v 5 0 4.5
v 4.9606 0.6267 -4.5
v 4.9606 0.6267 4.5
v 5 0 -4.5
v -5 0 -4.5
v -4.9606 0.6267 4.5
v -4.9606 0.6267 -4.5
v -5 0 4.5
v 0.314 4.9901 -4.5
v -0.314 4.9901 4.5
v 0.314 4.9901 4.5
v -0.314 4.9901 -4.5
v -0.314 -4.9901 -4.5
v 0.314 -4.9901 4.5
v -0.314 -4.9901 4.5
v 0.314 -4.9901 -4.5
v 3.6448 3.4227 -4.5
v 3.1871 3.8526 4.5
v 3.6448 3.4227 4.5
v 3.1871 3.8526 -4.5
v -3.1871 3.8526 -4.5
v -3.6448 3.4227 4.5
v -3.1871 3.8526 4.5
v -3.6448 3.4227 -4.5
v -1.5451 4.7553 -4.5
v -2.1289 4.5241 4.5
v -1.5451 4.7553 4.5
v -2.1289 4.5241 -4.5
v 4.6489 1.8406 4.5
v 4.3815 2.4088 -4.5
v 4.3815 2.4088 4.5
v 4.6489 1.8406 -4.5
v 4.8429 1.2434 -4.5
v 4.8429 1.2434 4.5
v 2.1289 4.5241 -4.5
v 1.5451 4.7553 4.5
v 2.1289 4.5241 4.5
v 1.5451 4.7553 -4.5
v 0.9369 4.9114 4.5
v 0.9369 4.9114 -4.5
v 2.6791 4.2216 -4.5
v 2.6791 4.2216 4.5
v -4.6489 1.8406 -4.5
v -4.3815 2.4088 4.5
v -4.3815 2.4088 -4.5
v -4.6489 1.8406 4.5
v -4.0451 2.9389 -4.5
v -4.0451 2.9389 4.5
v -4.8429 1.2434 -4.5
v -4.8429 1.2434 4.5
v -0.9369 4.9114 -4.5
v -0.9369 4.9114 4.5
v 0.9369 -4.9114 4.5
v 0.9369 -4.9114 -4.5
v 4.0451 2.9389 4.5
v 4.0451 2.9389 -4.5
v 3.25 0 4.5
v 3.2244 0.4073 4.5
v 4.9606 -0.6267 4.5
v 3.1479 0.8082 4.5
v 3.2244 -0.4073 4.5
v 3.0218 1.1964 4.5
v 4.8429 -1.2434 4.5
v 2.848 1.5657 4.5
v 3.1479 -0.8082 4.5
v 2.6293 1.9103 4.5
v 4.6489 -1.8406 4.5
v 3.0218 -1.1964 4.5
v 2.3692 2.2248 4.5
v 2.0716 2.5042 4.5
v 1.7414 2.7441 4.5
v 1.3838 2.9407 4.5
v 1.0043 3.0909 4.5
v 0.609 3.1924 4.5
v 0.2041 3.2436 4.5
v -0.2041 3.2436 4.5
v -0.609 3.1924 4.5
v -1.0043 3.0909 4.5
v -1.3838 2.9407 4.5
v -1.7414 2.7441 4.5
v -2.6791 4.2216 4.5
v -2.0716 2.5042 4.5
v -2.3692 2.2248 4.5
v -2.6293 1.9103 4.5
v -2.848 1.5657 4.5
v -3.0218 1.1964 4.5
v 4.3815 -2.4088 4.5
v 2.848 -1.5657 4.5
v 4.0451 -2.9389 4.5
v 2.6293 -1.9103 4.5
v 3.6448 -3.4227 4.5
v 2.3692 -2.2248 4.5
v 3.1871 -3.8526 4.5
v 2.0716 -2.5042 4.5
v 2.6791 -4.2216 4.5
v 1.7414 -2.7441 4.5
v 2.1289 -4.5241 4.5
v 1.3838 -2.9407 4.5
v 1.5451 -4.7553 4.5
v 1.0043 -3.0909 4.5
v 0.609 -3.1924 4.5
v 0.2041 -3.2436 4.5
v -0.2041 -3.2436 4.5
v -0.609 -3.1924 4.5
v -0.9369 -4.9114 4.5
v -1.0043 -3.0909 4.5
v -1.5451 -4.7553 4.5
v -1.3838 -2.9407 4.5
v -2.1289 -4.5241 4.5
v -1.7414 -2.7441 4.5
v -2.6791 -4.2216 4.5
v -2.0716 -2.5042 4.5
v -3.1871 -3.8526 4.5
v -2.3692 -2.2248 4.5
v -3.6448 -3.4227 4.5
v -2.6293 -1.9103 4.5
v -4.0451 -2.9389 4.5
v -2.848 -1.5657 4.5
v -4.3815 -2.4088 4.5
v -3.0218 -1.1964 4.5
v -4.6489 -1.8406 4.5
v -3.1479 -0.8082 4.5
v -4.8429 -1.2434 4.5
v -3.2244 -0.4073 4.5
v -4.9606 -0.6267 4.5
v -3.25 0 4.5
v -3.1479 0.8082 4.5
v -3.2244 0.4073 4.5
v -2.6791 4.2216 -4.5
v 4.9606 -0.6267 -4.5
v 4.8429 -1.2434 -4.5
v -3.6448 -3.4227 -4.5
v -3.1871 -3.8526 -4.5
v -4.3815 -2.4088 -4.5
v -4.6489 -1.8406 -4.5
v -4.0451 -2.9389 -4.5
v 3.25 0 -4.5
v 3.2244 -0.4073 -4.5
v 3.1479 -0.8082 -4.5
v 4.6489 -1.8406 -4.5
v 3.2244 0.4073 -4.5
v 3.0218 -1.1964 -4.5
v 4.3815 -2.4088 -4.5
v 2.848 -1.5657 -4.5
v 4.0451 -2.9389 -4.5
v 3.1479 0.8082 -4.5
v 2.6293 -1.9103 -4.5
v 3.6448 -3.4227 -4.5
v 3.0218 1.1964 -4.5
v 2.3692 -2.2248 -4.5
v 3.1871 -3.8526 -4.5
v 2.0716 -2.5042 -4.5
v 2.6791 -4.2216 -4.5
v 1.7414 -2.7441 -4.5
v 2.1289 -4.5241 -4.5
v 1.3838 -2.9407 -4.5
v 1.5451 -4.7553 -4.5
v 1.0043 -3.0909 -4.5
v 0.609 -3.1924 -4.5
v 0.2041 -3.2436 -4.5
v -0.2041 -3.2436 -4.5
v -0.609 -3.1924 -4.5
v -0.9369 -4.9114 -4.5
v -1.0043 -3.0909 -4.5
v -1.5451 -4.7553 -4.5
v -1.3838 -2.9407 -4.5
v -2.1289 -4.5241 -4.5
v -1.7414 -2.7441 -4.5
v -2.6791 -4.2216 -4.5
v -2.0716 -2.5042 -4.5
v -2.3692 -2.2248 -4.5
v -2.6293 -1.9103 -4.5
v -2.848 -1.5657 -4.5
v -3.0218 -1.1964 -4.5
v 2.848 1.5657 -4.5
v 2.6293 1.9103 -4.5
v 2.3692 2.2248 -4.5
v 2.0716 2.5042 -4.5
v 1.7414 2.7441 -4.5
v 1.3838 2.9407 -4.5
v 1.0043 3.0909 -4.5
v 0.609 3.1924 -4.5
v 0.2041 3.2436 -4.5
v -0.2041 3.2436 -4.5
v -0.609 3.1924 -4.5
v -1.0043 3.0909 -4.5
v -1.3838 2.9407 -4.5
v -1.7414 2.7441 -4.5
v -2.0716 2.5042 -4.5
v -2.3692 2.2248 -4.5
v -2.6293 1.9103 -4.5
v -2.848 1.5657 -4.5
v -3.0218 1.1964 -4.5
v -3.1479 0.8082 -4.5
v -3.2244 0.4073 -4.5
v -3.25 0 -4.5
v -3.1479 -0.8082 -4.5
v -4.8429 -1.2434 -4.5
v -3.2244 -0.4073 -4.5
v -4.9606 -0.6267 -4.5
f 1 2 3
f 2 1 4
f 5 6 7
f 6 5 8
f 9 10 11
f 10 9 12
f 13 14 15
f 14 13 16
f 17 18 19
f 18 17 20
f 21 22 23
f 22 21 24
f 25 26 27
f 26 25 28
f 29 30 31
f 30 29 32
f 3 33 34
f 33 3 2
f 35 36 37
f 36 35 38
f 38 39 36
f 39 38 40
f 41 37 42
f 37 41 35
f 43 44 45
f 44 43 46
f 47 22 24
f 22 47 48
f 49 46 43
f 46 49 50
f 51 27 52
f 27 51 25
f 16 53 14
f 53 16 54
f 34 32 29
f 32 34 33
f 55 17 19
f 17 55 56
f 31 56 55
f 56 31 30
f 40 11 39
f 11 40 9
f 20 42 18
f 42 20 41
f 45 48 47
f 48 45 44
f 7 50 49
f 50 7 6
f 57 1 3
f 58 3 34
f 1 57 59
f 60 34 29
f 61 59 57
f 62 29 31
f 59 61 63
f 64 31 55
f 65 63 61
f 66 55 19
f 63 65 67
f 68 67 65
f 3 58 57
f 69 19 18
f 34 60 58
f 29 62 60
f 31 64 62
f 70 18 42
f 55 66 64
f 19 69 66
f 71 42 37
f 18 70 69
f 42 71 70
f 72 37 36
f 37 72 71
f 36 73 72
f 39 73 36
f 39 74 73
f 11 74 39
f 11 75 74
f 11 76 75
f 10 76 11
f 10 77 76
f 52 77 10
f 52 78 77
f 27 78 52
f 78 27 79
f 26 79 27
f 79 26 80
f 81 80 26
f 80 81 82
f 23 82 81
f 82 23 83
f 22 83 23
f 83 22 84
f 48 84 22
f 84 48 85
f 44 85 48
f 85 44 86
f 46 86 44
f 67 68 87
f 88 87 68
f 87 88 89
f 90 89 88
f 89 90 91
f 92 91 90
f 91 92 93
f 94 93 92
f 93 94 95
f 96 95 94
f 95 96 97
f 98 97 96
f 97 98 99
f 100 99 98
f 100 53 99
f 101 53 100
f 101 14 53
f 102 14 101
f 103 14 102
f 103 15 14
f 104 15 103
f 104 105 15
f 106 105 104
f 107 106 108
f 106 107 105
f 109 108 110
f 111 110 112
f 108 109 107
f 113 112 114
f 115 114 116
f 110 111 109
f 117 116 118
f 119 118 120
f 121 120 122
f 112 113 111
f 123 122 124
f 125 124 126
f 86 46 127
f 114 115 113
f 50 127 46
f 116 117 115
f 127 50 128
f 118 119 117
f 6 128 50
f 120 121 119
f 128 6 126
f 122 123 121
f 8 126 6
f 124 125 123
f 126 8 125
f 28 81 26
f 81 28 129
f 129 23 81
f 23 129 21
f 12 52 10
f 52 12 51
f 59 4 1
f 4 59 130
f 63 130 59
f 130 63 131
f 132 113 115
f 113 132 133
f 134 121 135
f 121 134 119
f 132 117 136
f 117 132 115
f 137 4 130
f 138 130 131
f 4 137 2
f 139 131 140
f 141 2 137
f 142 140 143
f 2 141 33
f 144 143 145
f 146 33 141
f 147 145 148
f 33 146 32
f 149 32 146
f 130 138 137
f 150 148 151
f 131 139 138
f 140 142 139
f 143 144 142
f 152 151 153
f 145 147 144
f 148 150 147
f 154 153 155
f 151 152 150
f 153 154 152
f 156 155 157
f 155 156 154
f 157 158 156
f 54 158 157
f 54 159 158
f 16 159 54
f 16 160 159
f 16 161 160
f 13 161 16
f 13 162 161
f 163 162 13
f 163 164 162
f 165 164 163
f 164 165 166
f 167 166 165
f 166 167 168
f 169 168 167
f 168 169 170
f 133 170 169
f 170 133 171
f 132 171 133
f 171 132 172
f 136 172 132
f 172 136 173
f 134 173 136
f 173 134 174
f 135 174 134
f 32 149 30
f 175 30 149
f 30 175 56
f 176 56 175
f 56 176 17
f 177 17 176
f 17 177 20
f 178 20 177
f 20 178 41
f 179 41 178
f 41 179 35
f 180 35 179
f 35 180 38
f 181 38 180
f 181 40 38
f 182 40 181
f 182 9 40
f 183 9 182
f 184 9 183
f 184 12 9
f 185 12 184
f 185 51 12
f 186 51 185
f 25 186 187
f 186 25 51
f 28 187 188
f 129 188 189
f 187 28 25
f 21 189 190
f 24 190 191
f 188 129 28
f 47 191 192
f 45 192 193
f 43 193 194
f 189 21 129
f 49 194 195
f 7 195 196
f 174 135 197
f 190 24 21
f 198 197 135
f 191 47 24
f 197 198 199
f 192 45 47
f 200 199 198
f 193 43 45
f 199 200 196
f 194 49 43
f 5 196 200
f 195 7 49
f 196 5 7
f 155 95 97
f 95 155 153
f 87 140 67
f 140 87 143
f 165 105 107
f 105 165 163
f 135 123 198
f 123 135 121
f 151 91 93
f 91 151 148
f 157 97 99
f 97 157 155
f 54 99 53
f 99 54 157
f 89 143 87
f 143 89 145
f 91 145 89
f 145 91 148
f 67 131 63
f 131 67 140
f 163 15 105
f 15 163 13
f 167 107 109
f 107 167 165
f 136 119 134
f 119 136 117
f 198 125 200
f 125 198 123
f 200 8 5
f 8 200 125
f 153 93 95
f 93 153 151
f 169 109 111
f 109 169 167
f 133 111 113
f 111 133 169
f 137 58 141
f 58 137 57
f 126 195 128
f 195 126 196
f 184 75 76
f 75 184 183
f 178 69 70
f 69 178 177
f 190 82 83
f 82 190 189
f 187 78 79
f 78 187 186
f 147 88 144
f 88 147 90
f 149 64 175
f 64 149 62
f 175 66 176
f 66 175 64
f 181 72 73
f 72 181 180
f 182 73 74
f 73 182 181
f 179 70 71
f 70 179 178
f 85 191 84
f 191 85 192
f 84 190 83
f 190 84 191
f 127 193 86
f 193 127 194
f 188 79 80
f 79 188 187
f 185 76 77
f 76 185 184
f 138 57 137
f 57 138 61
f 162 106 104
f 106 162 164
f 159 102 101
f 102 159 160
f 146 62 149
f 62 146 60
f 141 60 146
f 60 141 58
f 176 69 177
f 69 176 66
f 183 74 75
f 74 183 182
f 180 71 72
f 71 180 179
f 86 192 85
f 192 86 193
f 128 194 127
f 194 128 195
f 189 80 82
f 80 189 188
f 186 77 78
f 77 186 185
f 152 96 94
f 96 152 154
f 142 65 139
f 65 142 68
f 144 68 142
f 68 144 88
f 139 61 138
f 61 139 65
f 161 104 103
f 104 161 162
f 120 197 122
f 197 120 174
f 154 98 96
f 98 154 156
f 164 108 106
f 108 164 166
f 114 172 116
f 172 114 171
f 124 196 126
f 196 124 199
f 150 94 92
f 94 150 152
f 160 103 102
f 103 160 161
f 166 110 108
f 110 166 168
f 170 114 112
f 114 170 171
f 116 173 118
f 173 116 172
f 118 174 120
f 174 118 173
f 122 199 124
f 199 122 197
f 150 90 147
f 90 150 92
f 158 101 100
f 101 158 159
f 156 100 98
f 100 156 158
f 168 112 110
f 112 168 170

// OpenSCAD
$fn = 50;


difference() {
	union() {
		translate(v = [0, 0, -4.5000000000]) {
			cylinder(h = 9, r = 5.0000000000);
		}
	}
	union() {
		translate(v = [0, 0, -100.0000000000]) {
			cylinder(h = 200, r = 3.2500000000);
		}
	}
}
